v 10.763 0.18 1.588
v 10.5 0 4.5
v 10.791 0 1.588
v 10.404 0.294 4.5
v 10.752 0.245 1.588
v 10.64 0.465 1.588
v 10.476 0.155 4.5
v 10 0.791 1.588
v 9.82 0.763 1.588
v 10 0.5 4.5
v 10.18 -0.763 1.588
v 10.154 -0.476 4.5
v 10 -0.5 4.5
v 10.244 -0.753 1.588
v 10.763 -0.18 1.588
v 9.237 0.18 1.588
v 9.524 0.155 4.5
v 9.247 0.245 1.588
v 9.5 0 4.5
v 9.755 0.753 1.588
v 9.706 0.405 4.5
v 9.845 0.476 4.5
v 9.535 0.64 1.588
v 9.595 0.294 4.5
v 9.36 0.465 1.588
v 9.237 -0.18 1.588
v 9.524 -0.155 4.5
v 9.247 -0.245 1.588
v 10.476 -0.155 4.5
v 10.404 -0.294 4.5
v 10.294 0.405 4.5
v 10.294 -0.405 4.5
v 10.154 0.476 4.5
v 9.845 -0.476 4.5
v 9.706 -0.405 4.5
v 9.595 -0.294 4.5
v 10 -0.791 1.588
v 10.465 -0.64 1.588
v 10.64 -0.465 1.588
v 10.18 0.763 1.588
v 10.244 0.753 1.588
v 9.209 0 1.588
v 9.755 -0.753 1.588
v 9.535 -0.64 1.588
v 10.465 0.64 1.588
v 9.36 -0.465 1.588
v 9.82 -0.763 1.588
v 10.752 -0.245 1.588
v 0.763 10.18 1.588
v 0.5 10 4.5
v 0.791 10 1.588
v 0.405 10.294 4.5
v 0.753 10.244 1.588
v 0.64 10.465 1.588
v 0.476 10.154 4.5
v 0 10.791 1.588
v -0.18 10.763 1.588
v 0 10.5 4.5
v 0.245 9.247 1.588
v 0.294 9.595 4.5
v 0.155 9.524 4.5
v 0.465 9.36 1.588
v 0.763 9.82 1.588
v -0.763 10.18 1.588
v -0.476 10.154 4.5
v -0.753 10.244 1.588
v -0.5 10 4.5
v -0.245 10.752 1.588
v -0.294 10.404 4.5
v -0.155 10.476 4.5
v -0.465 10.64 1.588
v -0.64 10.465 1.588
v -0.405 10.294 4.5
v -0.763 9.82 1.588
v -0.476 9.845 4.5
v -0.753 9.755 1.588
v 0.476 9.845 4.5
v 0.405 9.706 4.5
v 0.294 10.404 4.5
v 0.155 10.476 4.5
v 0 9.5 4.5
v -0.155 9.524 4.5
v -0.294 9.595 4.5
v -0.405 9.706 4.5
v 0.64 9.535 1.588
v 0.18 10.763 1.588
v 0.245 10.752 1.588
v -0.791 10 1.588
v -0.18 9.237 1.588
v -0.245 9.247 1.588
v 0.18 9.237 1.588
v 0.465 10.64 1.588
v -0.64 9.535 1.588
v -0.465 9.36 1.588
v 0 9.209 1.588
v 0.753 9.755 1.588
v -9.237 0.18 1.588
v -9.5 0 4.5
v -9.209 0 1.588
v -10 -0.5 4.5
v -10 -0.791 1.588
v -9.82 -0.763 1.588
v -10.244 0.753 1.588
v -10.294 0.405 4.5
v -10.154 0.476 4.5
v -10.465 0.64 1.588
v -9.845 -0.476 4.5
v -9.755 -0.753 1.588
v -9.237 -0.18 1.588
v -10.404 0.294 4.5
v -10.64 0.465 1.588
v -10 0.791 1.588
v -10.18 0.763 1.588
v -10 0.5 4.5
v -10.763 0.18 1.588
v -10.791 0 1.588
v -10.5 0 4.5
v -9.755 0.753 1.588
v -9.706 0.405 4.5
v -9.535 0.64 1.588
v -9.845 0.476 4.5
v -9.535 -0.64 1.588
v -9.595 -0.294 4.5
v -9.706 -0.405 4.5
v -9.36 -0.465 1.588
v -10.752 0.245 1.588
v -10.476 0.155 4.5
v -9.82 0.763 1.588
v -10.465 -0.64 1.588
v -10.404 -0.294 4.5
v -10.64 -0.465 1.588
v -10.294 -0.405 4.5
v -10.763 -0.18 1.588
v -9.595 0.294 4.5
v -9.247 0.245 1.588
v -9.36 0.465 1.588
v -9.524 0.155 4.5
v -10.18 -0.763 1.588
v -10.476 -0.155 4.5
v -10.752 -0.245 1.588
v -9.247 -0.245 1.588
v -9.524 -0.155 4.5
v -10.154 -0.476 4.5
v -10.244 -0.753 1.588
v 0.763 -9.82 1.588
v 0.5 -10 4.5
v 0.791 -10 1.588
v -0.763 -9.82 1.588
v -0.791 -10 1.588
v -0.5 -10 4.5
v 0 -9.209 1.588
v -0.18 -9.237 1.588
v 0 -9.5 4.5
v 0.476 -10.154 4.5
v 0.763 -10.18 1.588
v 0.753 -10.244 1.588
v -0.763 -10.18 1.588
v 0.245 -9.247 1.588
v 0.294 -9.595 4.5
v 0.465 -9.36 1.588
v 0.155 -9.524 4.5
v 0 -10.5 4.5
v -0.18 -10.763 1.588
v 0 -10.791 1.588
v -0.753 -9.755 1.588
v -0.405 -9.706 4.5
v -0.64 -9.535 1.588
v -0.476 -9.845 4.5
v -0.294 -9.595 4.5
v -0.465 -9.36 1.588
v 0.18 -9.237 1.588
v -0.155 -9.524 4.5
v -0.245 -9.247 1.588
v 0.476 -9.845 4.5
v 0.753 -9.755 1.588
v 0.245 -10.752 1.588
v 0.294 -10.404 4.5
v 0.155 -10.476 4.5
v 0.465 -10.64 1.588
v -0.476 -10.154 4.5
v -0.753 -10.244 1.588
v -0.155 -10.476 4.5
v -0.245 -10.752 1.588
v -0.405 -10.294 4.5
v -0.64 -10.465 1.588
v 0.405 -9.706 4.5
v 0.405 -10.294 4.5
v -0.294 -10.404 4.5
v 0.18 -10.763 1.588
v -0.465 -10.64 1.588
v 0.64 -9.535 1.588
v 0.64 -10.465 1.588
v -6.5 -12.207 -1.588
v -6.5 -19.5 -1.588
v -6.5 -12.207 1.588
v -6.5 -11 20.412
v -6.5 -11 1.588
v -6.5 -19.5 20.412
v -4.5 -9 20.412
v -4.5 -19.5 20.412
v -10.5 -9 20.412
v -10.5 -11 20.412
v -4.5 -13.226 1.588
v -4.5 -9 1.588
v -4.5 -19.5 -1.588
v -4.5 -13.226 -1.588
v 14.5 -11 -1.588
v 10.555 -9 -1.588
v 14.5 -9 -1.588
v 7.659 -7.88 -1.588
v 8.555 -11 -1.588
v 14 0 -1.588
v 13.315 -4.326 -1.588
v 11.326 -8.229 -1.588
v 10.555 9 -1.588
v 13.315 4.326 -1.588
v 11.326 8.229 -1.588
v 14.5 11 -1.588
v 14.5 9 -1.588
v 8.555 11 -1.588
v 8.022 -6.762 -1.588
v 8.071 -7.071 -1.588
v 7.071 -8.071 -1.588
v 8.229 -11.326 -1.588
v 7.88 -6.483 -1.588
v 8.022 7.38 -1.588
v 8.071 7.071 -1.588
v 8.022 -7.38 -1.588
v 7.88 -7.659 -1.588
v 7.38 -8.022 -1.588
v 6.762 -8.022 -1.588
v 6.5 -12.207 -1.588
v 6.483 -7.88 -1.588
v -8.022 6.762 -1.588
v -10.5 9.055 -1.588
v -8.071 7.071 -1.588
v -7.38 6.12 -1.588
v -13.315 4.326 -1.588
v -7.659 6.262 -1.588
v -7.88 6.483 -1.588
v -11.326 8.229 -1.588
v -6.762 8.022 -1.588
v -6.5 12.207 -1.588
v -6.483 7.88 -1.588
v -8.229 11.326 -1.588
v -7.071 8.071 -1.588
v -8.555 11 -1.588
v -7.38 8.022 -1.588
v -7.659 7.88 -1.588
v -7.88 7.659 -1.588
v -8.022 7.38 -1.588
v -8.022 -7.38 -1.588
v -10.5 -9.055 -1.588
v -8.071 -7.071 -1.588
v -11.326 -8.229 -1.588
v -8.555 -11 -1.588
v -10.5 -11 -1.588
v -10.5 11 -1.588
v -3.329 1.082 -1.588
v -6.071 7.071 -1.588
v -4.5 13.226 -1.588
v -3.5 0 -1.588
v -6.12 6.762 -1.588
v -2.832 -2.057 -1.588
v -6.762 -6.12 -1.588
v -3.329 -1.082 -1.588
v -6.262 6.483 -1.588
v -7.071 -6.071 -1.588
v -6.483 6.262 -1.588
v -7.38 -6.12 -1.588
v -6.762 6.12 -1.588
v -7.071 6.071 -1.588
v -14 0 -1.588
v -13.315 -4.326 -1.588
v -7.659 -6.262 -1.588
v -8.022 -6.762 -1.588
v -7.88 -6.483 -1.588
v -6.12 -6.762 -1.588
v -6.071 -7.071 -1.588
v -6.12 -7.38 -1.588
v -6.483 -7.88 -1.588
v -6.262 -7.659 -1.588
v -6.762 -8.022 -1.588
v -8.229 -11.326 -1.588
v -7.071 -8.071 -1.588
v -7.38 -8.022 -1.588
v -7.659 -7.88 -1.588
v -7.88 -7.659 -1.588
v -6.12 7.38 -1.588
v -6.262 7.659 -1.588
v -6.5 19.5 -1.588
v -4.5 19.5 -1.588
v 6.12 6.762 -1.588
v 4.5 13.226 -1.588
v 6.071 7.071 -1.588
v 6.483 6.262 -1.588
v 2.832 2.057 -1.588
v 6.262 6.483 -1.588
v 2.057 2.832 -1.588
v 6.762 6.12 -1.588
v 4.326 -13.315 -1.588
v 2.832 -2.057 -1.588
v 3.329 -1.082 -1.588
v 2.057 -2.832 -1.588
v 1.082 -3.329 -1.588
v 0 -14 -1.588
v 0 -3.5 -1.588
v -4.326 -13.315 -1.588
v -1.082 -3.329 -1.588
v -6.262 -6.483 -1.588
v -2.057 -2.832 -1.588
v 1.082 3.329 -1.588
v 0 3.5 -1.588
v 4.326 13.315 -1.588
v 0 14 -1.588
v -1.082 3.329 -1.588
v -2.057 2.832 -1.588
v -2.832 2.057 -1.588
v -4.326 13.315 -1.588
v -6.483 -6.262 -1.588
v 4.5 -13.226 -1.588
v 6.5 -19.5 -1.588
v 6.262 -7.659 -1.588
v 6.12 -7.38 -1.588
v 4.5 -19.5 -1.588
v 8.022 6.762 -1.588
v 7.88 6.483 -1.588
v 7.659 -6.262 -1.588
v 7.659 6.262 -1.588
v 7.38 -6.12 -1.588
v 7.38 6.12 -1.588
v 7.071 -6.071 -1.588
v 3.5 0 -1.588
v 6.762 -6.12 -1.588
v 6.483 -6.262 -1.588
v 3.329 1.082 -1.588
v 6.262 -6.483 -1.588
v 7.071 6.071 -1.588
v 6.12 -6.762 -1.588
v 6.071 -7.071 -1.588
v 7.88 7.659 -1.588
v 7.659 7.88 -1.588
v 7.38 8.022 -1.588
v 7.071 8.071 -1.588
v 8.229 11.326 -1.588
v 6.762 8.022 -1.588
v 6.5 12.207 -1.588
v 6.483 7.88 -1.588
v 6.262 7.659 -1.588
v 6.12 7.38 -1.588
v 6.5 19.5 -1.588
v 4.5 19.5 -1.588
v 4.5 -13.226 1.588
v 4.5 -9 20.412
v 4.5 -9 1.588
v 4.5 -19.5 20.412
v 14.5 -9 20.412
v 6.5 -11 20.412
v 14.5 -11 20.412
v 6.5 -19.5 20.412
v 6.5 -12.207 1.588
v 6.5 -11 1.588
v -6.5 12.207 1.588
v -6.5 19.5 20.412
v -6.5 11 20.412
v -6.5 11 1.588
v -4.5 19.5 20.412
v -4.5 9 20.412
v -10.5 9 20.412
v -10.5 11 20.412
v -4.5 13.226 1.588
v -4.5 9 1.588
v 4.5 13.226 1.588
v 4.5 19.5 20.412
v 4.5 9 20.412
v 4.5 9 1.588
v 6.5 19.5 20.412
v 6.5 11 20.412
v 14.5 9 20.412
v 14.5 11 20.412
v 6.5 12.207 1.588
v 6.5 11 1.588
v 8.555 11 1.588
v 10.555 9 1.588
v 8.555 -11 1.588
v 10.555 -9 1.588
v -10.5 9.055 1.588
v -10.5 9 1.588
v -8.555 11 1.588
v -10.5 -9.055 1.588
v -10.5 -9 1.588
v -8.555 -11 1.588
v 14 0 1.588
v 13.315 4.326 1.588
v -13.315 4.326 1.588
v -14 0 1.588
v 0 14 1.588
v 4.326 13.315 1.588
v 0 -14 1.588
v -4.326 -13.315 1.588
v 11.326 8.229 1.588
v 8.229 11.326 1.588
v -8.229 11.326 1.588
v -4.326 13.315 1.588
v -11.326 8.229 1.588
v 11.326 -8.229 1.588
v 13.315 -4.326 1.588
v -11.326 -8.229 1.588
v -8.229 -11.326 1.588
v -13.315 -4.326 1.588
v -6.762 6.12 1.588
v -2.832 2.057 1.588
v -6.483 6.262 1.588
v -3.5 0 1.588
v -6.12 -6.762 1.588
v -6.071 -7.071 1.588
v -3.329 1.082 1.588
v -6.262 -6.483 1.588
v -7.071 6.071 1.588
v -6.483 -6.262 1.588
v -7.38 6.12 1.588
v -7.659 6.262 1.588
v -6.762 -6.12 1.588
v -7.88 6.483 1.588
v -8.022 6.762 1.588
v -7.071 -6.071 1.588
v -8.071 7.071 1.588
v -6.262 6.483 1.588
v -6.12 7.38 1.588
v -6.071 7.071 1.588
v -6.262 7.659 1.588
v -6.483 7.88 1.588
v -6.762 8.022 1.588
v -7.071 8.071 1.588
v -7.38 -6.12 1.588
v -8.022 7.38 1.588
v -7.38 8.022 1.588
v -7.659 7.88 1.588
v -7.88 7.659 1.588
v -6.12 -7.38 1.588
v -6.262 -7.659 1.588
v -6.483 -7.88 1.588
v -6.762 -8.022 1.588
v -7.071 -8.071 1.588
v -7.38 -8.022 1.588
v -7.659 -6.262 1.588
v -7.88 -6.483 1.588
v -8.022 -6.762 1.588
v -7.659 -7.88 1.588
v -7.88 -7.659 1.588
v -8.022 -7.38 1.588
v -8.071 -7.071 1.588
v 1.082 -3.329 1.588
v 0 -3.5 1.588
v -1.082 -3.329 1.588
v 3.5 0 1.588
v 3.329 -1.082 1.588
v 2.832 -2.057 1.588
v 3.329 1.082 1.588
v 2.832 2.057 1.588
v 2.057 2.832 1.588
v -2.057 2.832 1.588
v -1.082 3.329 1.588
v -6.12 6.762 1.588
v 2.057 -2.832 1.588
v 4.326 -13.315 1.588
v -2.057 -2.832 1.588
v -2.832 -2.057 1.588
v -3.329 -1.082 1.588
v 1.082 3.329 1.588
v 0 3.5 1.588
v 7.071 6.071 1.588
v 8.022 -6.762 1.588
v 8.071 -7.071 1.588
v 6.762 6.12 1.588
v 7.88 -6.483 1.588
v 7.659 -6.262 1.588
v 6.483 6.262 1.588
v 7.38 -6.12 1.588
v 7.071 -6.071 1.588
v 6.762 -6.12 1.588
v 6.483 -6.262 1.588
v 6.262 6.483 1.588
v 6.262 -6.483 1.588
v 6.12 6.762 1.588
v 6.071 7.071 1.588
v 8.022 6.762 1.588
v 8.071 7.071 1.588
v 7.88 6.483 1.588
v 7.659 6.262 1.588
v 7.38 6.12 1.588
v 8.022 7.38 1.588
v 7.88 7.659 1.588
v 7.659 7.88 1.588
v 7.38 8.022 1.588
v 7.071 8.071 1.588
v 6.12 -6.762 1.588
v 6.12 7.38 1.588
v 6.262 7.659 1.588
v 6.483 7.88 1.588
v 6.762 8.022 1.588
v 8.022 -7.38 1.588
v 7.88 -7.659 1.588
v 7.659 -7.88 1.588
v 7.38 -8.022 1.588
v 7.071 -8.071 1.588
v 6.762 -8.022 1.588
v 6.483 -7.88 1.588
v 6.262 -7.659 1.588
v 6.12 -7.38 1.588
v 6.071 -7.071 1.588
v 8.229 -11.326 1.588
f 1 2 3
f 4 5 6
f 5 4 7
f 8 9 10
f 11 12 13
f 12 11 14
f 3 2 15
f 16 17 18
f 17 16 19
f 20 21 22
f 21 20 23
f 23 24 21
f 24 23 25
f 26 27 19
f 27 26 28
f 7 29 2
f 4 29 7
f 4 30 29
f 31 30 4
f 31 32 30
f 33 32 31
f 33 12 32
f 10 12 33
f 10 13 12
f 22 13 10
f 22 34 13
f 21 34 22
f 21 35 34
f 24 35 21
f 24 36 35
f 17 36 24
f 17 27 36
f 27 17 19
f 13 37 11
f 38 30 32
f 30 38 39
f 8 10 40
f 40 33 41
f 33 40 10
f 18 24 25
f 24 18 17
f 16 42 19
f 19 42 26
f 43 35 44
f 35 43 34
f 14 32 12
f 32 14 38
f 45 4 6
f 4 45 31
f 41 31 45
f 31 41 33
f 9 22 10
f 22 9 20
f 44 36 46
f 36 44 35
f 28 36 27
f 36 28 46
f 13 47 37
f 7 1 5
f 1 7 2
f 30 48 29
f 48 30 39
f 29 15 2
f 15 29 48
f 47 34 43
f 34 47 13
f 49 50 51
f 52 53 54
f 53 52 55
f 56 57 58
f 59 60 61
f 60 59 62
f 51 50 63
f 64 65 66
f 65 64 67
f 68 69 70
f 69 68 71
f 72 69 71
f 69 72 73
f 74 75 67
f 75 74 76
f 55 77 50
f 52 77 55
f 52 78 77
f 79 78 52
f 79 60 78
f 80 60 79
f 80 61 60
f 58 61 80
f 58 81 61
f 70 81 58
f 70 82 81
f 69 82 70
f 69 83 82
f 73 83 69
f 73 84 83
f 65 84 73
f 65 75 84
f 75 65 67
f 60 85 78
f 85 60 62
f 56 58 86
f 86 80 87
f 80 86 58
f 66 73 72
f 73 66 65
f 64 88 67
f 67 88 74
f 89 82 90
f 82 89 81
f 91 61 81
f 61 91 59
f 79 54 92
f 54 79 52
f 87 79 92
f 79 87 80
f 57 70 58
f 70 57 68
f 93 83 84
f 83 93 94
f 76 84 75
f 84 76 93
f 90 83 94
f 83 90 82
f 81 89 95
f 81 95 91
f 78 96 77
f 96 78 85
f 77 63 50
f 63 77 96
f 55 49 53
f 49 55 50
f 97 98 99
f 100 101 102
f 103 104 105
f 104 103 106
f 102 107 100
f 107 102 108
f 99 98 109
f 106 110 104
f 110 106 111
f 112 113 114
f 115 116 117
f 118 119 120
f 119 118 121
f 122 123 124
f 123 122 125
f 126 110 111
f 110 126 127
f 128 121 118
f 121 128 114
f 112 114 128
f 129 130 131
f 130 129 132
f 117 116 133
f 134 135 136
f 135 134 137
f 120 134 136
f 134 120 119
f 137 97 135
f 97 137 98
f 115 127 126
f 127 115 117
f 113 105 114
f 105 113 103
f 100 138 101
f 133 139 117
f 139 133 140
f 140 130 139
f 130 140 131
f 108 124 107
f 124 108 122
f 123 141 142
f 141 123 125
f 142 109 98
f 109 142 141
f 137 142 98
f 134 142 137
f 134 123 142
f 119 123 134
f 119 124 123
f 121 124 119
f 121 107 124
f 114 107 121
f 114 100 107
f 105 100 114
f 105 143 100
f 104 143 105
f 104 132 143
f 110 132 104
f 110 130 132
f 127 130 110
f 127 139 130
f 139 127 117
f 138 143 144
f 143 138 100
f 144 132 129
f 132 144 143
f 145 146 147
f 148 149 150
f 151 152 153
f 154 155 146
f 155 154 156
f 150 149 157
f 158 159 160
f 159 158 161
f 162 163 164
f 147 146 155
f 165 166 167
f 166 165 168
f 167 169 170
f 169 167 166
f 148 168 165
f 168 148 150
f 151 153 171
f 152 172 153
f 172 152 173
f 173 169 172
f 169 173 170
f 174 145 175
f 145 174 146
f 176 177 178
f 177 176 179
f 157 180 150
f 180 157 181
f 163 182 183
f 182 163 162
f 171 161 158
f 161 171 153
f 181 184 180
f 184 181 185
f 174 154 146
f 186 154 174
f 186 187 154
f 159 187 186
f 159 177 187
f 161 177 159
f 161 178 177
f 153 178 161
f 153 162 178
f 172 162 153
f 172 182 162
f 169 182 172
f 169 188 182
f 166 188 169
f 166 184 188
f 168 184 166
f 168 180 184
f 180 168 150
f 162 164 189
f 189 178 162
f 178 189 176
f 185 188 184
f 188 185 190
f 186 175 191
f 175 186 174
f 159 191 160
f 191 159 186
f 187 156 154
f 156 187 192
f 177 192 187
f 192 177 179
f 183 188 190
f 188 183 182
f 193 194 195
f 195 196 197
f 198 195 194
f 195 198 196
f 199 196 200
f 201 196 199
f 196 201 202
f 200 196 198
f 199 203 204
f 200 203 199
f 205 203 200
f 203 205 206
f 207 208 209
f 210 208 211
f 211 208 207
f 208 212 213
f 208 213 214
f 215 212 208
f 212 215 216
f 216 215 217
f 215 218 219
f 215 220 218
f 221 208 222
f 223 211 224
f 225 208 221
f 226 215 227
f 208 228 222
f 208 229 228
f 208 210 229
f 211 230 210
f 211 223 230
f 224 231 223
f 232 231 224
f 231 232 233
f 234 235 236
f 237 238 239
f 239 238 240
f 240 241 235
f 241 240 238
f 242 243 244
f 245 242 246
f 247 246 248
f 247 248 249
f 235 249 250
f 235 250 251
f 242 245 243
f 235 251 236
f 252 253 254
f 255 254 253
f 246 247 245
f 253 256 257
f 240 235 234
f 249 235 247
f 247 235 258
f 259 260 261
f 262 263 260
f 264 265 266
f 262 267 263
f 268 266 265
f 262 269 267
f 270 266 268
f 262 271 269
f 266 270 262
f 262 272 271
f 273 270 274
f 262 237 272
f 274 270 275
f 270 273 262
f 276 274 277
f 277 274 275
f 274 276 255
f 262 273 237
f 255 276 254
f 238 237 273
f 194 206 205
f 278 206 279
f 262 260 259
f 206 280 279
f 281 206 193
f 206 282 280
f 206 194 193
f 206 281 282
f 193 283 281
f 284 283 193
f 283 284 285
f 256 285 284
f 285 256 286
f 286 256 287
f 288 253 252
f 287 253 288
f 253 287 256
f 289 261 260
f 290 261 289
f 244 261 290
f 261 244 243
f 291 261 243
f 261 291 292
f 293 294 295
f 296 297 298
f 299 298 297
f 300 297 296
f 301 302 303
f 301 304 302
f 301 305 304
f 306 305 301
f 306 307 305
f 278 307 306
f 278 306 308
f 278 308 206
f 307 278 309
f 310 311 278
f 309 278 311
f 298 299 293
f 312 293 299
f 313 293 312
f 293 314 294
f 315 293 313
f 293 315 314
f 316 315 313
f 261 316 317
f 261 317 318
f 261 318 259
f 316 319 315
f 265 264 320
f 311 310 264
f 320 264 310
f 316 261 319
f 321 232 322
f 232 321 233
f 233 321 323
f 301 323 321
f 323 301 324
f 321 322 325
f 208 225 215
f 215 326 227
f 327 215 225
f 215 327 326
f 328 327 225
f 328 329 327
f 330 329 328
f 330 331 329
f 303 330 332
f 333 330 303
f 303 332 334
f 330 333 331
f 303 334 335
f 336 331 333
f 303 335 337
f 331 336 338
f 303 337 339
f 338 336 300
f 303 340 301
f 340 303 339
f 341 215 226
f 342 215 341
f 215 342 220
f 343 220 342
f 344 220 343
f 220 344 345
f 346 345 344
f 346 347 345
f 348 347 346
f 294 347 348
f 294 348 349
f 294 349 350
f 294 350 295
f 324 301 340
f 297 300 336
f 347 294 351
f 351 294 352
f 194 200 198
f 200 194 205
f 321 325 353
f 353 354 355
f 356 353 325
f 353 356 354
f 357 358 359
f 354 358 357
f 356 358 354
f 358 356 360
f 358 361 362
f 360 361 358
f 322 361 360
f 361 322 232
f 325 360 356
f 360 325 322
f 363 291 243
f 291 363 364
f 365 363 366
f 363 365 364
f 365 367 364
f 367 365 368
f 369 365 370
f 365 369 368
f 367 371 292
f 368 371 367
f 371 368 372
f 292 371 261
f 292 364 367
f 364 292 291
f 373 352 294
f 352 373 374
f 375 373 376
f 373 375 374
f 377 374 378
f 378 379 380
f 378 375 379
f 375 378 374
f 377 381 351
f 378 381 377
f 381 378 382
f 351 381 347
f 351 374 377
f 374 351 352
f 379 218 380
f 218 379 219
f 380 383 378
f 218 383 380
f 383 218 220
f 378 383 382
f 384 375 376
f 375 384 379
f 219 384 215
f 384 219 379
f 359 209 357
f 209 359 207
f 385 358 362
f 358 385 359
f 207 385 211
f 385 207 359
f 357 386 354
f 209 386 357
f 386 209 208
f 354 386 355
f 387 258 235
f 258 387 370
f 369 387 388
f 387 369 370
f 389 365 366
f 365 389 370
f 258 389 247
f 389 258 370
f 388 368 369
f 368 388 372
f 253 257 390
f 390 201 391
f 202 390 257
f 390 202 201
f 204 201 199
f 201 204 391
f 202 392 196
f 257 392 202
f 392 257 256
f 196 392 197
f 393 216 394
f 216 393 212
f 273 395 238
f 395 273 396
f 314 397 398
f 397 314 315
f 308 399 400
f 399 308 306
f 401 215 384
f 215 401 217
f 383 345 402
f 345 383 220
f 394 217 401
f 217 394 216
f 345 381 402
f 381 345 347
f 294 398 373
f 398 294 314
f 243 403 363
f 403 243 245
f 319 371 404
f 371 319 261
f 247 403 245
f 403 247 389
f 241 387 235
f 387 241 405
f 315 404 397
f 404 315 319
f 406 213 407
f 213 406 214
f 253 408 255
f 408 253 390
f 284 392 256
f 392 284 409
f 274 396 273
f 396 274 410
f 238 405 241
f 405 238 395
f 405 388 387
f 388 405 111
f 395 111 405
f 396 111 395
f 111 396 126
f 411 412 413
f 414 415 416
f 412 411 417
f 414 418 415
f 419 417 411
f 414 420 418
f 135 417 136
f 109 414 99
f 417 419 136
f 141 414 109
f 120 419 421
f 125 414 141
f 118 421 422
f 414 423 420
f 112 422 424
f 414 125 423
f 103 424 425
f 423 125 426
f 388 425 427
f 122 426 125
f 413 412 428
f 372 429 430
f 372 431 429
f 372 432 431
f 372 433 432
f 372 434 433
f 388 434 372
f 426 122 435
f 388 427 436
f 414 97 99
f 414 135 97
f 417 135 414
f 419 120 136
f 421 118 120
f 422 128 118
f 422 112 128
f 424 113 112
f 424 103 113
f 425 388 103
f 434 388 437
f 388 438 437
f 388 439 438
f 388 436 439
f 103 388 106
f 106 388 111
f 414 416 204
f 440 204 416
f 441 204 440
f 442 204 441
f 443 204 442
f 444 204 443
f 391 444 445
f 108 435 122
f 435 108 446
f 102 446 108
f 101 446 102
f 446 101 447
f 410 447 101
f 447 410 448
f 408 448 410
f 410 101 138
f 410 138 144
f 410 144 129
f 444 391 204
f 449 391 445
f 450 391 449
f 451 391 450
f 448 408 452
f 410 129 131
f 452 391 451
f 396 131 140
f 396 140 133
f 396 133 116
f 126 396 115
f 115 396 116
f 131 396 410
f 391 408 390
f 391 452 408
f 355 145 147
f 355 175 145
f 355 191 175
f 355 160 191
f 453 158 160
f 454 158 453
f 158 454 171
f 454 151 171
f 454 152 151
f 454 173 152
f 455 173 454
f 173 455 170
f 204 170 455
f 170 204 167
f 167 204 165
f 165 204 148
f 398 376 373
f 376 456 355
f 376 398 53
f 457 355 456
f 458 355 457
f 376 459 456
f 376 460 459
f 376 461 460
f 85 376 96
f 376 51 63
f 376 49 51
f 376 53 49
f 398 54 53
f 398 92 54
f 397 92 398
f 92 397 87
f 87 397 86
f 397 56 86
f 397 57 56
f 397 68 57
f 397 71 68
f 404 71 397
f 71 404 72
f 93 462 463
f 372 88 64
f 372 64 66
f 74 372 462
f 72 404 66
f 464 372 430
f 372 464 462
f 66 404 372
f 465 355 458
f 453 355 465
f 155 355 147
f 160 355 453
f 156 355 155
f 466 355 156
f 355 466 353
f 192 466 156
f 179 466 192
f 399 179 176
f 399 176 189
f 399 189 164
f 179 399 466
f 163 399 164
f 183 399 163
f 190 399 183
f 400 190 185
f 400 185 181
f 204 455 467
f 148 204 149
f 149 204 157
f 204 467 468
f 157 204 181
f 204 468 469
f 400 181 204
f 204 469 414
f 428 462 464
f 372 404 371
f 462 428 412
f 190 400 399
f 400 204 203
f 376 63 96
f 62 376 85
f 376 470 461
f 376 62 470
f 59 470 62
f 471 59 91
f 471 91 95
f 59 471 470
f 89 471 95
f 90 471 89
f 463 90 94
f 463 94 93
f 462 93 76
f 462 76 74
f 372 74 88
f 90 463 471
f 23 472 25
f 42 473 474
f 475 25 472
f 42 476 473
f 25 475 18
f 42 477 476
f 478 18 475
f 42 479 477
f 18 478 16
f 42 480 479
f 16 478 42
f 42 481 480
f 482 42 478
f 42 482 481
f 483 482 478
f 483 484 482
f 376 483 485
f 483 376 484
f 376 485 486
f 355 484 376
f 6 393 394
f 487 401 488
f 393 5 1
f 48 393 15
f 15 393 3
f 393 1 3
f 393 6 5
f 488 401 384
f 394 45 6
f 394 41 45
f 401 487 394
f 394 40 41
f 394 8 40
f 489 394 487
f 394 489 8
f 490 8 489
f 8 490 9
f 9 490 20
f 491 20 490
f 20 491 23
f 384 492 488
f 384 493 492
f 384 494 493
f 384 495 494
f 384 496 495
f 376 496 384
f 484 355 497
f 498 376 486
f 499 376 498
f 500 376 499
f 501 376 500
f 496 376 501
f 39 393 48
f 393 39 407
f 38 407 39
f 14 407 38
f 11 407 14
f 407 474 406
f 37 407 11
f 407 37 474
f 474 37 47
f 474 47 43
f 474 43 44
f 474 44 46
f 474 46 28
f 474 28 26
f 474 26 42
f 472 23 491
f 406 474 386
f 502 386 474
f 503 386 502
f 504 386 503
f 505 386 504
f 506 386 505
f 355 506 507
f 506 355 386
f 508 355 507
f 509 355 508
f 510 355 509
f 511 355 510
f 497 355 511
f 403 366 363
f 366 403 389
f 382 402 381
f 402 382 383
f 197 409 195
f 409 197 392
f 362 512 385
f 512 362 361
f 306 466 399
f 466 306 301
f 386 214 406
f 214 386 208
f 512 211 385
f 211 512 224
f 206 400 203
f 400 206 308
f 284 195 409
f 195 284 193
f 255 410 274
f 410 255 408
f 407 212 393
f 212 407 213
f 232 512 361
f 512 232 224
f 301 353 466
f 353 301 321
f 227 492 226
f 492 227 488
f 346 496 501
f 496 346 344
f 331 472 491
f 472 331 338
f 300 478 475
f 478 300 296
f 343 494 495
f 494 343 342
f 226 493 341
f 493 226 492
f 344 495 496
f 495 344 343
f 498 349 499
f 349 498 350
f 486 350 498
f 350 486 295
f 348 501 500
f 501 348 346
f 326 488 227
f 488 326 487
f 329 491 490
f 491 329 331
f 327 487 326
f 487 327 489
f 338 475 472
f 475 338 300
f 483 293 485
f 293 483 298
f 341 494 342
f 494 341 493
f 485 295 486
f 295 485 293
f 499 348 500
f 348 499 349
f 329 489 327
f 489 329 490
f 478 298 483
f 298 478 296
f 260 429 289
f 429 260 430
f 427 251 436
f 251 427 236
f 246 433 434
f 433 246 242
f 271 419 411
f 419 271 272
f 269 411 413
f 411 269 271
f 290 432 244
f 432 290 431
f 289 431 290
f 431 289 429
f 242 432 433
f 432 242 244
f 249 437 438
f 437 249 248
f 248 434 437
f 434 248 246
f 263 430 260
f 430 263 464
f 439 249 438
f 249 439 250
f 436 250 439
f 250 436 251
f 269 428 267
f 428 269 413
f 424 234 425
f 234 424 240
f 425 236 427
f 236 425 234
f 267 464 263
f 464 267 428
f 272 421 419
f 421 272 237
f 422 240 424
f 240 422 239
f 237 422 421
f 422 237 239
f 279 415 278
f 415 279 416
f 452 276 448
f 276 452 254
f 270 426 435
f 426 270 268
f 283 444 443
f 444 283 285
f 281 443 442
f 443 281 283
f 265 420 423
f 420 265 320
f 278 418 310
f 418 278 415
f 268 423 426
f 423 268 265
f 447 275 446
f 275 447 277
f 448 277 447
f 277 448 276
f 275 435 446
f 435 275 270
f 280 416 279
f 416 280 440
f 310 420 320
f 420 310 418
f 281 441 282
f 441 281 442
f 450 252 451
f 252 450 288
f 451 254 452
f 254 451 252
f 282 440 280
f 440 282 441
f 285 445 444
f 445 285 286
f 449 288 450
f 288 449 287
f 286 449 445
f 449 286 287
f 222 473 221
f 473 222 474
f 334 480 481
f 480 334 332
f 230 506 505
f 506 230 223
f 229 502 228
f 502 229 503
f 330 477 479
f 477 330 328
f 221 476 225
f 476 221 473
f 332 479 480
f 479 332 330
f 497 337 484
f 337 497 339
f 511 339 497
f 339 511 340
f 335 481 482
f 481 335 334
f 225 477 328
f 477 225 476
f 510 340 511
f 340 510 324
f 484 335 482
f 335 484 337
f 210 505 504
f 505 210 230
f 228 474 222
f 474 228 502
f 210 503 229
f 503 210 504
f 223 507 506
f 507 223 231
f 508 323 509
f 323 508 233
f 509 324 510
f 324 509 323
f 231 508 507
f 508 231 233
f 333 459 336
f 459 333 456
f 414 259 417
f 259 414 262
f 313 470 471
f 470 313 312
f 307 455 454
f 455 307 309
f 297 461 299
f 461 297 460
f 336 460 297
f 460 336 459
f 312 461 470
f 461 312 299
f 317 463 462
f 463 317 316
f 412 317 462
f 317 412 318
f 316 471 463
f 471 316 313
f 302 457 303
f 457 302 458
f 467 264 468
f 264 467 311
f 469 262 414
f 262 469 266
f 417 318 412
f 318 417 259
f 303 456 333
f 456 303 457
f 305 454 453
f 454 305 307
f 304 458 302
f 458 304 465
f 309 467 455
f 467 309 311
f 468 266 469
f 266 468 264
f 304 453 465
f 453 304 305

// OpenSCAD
// This is a motor mount for the much-admired Dekan F-22.
// Mark Harrison, marhar@gmail.com.
// Creative Common Attribution license.  Share and Enjoy!
// Information on the F-22 here:
// https://www.rcgroups.com/forums/showthread.php?740049-F22-Epp-Depron-Parkjet-with-plans

$fn=20;
HH=3.175;

DD=28;
CENTERD=7;
BOLTD=2;
HOLER=10;

difference() {
    main();
    holes();
}

module main() {
    cylinder(HH,d=DD,center=true);
    for (i = [0:3]) {
        translate([cos(90*i)*HOLER,sin(90*i)*HOLER,2])
            cylinder(5,d=2,d2=1,center=true);
    }
    bars();
}

module holes() {
    cylinder(HH,d=CENTERD,center=true);
    for (i = [0:3]) {
        translate([cos(90*i+45)*HOLER,sin(90*i+45)*HOLER,0])
            cylinder(HH,d=BOLTD,center=true);
    }
}

BARHT=22;   // bar height
BARTHK=2;   // bar thickness
TT=9;       // foam thickness
module bars() {
    //cube([9,9,9],center=true);
    translate([-6.5,-19.5,-HH/2]) cube([BARTHK,10,BARHT]);
    translate([TT/2,-19.5,-HH/2]) cube([BARTHK,10,BARHT]);
    translate([-6.5,9.5,-HH/2]) cube([BARTHK,10,BARHT]);
    translate([TT/2,9.5,-HH/2]) cube([BARTHK,10,BARHT]);

    translate([TT/2,9,-HH/2]) cube([10,BARTHK,BARHT]);
    translate([TT/2,-11,-HH/2]) cube([10,BARTHK,BARHT]);
    translate([-10.5,9,-HH/2]) cube([6,BARTHK,BARHT]);
    translate([-10.5,-11,-HH/2]) cube([6,BARTHK,BARHT]);
}
